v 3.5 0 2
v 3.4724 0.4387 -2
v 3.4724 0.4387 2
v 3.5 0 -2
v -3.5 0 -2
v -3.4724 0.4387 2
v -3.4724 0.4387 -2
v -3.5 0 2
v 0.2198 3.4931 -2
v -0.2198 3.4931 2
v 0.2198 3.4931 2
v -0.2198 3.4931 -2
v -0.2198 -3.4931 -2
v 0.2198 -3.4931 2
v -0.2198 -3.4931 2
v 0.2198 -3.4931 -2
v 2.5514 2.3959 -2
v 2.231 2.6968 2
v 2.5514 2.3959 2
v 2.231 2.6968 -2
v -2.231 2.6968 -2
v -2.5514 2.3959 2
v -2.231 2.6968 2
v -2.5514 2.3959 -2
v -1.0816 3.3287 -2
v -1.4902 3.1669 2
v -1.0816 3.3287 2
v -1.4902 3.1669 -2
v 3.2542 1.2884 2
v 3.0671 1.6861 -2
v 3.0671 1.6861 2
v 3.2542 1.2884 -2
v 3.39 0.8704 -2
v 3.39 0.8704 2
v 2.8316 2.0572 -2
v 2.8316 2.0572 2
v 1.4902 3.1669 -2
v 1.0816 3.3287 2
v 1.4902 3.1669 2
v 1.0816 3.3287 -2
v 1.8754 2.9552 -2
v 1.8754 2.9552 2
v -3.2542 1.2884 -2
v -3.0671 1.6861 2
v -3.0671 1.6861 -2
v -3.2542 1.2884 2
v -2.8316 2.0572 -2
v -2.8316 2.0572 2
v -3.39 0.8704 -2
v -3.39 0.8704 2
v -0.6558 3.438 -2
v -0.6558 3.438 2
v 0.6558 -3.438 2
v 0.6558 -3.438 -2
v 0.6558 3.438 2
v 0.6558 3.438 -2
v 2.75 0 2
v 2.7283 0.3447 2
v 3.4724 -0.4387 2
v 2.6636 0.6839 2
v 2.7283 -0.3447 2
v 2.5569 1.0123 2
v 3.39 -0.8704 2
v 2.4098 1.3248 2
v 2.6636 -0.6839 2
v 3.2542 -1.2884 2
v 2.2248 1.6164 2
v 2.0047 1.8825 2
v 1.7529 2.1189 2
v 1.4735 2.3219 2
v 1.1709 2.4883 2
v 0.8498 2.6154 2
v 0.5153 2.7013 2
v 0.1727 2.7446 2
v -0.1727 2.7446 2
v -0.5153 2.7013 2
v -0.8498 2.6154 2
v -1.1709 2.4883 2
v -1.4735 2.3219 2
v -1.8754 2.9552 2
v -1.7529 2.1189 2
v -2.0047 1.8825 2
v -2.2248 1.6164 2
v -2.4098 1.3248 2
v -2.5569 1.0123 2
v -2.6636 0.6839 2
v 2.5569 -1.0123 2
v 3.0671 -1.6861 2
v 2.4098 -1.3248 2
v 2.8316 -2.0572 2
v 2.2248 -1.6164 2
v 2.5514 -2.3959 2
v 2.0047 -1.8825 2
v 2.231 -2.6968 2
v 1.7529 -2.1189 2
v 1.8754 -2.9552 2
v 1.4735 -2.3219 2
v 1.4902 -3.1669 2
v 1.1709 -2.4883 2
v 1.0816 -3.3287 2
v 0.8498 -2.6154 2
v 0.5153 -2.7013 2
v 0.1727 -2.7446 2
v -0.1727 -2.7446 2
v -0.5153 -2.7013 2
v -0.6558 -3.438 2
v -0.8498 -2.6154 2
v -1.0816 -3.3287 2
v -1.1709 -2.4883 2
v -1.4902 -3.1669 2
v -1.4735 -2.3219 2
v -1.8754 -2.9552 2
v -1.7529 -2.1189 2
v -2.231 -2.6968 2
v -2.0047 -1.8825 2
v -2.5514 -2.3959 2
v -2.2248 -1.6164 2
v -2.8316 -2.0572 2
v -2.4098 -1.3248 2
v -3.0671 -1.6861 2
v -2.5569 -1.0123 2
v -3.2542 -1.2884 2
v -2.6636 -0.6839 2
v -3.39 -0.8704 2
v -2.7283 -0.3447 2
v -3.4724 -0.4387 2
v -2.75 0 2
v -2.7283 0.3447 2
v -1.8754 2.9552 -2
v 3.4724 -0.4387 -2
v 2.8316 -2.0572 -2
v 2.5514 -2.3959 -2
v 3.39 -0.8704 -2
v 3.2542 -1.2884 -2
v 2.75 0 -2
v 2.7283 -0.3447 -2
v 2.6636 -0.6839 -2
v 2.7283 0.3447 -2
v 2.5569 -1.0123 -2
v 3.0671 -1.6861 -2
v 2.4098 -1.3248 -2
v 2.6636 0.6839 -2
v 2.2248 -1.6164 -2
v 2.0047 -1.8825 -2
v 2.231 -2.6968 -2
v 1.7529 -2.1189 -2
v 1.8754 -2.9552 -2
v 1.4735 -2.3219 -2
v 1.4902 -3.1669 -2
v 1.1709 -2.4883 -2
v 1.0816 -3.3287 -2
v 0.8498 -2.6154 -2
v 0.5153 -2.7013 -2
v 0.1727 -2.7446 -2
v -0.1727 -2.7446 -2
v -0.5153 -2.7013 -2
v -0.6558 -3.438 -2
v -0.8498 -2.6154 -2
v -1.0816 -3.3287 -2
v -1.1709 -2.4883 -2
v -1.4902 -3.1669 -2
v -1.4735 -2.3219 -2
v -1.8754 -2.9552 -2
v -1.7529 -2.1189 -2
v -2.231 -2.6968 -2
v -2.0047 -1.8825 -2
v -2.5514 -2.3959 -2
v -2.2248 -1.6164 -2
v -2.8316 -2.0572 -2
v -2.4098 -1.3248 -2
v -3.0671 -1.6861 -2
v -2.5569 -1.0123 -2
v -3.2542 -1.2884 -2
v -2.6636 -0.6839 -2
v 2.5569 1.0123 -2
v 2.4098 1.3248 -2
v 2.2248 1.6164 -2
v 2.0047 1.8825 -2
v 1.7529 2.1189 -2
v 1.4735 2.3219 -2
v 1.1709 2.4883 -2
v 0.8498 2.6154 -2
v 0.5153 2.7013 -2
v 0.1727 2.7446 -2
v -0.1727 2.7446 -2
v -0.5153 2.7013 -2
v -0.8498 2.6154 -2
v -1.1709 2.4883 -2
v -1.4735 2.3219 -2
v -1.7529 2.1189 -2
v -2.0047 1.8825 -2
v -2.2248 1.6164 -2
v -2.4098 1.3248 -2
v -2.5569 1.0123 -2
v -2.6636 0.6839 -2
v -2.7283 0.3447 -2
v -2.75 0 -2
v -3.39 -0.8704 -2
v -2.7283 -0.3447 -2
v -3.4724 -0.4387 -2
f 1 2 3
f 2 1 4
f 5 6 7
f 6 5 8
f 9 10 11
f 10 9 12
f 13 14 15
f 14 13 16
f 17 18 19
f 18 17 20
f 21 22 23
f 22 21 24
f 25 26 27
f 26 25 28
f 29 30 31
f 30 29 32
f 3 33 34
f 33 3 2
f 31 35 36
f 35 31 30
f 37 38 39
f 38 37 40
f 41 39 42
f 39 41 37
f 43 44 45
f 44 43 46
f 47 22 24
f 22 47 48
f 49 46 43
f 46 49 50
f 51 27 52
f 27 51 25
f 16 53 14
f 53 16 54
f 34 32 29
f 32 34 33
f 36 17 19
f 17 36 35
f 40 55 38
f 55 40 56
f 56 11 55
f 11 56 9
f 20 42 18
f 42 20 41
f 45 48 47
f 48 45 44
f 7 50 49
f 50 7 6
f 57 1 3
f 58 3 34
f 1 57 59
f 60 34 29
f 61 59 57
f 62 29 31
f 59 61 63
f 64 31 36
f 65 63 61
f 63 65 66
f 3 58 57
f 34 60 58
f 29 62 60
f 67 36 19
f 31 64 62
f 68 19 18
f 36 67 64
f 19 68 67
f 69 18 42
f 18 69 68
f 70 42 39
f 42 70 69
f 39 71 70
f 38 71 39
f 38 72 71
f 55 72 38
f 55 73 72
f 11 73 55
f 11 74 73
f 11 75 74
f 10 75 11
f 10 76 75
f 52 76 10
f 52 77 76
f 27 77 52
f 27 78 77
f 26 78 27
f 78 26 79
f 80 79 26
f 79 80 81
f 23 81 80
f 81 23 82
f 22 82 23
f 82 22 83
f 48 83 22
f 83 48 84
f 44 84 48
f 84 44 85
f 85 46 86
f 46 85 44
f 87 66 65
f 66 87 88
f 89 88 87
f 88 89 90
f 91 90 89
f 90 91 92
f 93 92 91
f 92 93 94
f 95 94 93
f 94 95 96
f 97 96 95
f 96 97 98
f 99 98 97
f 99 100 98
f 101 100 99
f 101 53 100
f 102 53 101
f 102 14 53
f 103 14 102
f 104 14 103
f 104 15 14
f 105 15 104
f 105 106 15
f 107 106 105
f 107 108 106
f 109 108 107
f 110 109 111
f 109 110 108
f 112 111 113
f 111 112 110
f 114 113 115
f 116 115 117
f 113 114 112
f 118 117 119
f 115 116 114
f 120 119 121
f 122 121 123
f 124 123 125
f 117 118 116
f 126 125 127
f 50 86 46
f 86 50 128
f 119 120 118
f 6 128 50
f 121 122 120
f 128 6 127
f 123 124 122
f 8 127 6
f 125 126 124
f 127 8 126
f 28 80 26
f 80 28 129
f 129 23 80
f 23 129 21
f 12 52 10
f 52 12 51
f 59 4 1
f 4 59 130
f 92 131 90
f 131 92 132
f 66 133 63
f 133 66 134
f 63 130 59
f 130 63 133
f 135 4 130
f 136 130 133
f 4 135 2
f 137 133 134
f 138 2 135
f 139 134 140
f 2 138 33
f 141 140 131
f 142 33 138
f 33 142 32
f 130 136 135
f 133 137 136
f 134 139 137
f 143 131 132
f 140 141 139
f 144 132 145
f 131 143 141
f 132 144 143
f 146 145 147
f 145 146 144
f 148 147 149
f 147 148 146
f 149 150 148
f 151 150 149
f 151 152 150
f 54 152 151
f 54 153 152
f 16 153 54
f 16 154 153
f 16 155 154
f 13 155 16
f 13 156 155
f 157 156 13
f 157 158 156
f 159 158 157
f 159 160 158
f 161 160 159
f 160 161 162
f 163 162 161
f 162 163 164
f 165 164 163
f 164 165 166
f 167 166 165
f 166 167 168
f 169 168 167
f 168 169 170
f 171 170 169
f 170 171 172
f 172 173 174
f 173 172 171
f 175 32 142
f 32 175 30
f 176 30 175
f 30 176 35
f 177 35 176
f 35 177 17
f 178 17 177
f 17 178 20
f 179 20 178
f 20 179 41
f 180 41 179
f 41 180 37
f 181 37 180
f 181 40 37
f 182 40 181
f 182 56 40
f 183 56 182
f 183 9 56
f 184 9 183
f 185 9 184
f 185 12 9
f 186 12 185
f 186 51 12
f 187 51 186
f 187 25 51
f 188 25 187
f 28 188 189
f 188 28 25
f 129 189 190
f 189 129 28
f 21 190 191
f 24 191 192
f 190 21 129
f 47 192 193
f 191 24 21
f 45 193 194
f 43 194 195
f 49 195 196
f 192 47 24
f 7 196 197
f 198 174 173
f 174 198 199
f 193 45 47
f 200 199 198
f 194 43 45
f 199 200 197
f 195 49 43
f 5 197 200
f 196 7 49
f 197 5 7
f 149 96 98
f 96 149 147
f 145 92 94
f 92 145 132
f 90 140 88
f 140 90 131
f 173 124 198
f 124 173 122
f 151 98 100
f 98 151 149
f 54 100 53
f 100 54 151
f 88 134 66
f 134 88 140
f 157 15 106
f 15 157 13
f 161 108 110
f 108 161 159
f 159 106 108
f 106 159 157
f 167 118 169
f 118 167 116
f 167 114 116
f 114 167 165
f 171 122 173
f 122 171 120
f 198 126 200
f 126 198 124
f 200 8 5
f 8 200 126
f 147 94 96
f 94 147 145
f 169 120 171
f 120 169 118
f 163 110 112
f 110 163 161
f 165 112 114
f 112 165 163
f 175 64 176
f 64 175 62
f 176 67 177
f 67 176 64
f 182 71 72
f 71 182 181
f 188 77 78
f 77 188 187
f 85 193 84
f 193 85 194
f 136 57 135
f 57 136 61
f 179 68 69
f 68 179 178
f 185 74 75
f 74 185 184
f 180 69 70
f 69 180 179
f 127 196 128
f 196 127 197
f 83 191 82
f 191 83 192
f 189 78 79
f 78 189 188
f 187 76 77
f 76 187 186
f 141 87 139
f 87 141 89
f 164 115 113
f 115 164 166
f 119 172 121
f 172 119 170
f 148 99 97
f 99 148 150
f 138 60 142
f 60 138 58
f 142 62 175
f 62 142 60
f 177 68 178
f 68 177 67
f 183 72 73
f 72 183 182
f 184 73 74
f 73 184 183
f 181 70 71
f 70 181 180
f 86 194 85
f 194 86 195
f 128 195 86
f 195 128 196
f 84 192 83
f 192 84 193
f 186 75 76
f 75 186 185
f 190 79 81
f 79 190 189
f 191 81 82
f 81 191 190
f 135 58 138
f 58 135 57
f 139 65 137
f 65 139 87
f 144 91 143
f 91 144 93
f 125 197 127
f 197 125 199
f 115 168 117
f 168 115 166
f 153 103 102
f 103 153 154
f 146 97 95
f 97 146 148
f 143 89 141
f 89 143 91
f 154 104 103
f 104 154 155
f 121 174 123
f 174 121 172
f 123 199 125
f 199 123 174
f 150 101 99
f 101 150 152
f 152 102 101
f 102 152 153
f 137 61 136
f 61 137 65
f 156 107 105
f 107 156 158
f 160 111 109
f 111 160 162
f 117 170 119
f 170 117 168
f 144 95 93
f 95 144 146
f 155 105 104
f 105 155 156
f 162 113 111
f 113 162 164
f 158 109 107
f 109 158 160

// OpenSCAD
$fn = 50;


difference() {
	union() {
		translate(v = [0, 0, -2.0000000000]) {
			cylinder(h = 4, r = 3.5000000000);
		}
	}
	union() {
		translate(v = [0, 0, -100.0000000000]) {
			cylinder(h = 200, r = 2.7500000000);
		}
	}
}
